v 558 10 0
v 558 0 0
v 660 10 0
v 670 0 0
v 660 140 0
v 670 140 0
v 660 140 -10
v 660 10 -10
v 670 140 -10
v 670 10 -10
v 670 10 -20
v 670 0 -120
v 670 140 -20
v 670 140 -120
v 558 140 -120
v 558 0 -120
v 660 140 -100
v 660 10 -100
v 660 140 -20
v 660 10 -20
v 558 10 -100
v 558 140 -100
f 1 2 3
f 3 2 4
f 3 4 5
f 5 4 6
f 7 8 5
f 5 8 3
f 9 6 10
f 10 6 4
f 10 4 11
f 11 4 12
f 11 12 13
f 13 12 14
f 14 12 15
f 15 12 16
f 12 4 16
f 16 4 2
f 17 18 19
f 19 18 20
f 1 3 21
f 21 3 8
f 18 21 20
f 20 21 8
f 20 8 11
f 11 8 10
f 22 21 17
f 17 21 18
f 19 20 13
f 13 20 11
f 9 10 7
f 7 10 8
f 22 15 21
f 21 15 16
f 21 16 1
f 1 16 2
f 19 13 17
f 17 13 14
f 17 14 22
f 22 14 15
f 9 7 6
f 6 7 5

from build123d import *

# Parameters (mm, degrees)
SKETCH1_W                      = 670
SKETCH1_H                      = 120
BOSS_EXTRUDE1_DEPTH            = 530
SKETCH2_W                      = 100
SKETCH2_H                      = 200
SKETCH2_W_2                    = 650
SKETCH2_H_2                    = 250
CUT_EXTRUDE1_DEPTH             = 100
SKETCH3_R                      = 50
CUT_EXTRUDE2_DEPTH             = 260
F_12_0_12_DIAMETER_HOLE2_D     = 12
F_12_0_12_DIAMETER_HOLE2_DEPTH = 30
F_12_0_12_DIAMETER_HOLE2_TIP   = 3.605163714
SKETCH8_W                      = 650
SKETCH8_H                      = 50
BOSS_EXTRUDE2_DEPTH            = 5
SKETCH9_W                      = 10
SKETCH9_H                      = 250
CUT_EXTRUDE3_DEPTH             = 717
CUT_EXTRUDE4_DEPTH             = 5
SKETCH11_W                     = 10
SKETCH11_H                     = 100
BOSS_EXTRUDE3_DEPTH            = 78
BOSS_EXTRUDE3_2_DEPTH          = 78
BOSS_EXTRUDE3_3_DEPTH          = 78
SKETCH12_W                     = 20
SKETCH12_H                     = 30
CUT_EXTRUDE5_DEPTH             = 80
SKETCH15_W                     = 30
SKETCH15_H                     = 23.536156656
SKETCH15_H_2                   = 28.986603691
CUT_EXTRUDE7_DEPTH             = 35
SHELL1_T                       = -3
SKETCH16_W                     = 14
SKETCH16_H                     = 14
CUT_EXTRUDE8_DEPTH             = 35
SKETCH17_W                     = 5.729882812
SKETCH17_H                     = 17.428393554
SKETCH17_W_2                   = 13.369726562
SKETCH17_H_2                   = 3.342431641
BOSS_EXTRUDE4_DEPTH            = 5
CUT_EXTRUDE10_DEPTH            = 863.670273187
CUT_EXTRUDE10_DEPTH_BACK       = 863.670273187
SKETCH18_W                     = 670
SKETCH18_H                     = 250
CUT_EXTRUDE12_DEPTH            = 737.002717386
CUT_EXTRUDE12_DEPTH_BACK       = 737.002717386
SKETCH19_W                     = 558
SKETCH19_H                     = 280
CUT_EXTRUDE13_DEPTH            = 322.253793752
CUT_EXTRUDE13_DEPTH_BACK       = 322.253793752
SKETCH20_W                     = 120
SKETCH20_H                     = 140


with BuildPart() as part:
    # Sketch1 → Boss-Extrude1 (new body)
    with BuildSketch(Plane(origin=(0, 0, 0), x_dir=(1, 0, 0), z_dir=(0, 1, 0))):
        with Locations((335, 60)):
            Rectangle(SKETCH1_W, SKETCH1_H)
    extrude(amount=BOSS_EXTRUDE1_DEPTH)

    # Sketch2 → Cut-Extrude1 (cut)
    with BuildSketch(Plane.XY):
        with Locations((60, 380)):
            Rectangle(SKETCH2_W, SKETCH2_H)
        with Locations((170, 380)):
            Rectangle(SKETCH2_W, SKETCH2_H)
        with Locations((280, 380)):
            Rectangle(SKETCH2_W, SKETCH2_H)
        with Locations((390, 380)):
            Rectangle(SKETCH2_W, SKETCH2_H)
        with Locations((500, 380)):
            Rectangle(SKETCH2_W, SKETCH2_H)
        with Locations((610, 380)):
            Rectangle(SKETCH2_W, SKETCH2_H)
        with Locations((335, 135)):
            Rectangle(SKETCH2_W_2, SKETCH2_H_2)
    extrude(amount=-CUT_EXTRUDE1_DEPTH, mode=Mode.SUBTRACT)

    # Sketch3 → Cut-Extrude2 (cut)
    with BuildSketch(Plane(origin=(0, 530, 0), x_dir=(1, 0, 0), z_dir=(0, 1, 0))):
        with Locations(Location((60, 60, 0), (0, 0, 270))):
            Circle(SKETCH3_R)
        with Locations(Location((170, 60, 0), (0, 0, 270))):
            Circle(SKETCH3_R)
        with Locations(Location((280, 60, 0), (0, 0, 270))):
            Circle(SKETCH3_R)
        with Locations(Location((390, 60, 0), (0, 0, 270))):
            Circle(SKETCH3_R)
        with Locations(Location((500, 60, 0), (0, 0, 270))):
            Circle(SKETCH3_R)
        with Locations(Location((610, 60, 0), (0, 0, 270))):
            Circle(SKETCH3_R)
    extrude(amount=-CUT_EXTRUDE2_DEPTH, mode=Mode.SUBTRACT)

    # Ø12.0 (12) Diameter Hole2
    with Locations(Plane(origin=(59.704642413, 270, -102.411697903), x_dir=(0, 0, 1), z_dir=(0, 1, 0))):
        with Locations((0, 0), (-0.195888006, 111.8520513), (0.014838595, 221.167624818), (-0.341843303, 331.364008353), (0.657723149, 441.008646429), (1.288998006, 549.811854685)):
            Hole(F_12_0_12_DIAMETER_HOLE2_D / 2, depth=F_12_0_12_DIAMETER_HOLE2_DEPTH)
            with Locations((0, 0, -(F_12_0_12_DIAMETER_HOLE2_DEPTH + F_12_0_12_DIAMETER_HOLE2_TIP / 2))):  # 118° drill point
                Cone(0, F_12_0_12_DIAMETER_HOLE2_D / 2, F_12_0_12_DIAMETER_HOLE2_TIP, mode=Mode.SUBTRACT)

    # Sketch8 → Boss-Extrude2 (add)
    with BuildSketch(Plane.XY):
        with Locations((335, 305)):
            Rectangle(SKETCH8_W, SKETCH8_H)
    extrude(amount=-BOSS_EXTRUDE2_DEPTH)

    # Sketch9 → Cut-Extrude3 (cut)
    with BuildSketch(Plane(origin=(670, 0, 0), x_dir=(0, 0, -1), z_dir=(1, 0, 0))):
        with Locations((15, 135)):
            Rectangle(SKETCH9_W, SKETCH9_H)
    extrude(amount=-CUT_EXTRUDE3_DEPTH, mode=Mode.SUBTRACT)

    # Sketch10 → Cut-Extrude4 (cut)
    with BuildSketch(Plane(origin=(0, 10, 0), x_dir=(1, 0, 0), z_dir=(0, 1, 0))):
        Polygon((365, 61.943560596), (350, 87.924322709), (320, 87.924322709), (305, 61.943560596), (320, 35.962798482), (350, 35.962798482), align=None)
    extrude(amount=-CUT_EXTRUDE4_DEPTH, mode=Mode.SUBTRACT)

    # Sketch12 → Cut-Extrude5 (cut)
    with BuildSketch(Plane.XY.offset(-100)):
        with Locations((85.198613037, 245)):
            Rectangle(SKETCH12_W, SKETCH12_H)
        with Locations((195.198613037, 245)):
            Rectangle(SKETCH12_W, SKETCH12_H)
        with Locations((305.198613037, 245)):
            Rectangle(SKETCH12_W, SKETCH12_H)
        with Locations((415.198613037, 245)):
            Rectangle(SKETCH12_W, SKETCH12_H)
        with Locations((525.198613037, 245)):
            Rectangle(SKETCH12_W, SKETCH12_H)
        with Locations((635.198613037, 245)):
            Rectangle(SKETCH12_W, SKETCH12_H)
    extrude(amount=-CUT_EXTRUDE5_DEPTH, mode=Mode.SUBTRACT)

    # Sketch17 → Boss-Extrude4 (add)
    # profile 1 of 9: a face of its own
    with BuildSketch(Plane.XY):
        with BuildLine():
            Line((527.508830928, 289.835452458), (527.508830928, 307.263846012))
            Line((527.508830928, 307.263846012), (534.861434459, 307.263846012))
            add(Edge.make_bspline(
                [(534.861434459, 307.263846012), (535.181337774, 307.258256848), (535.803061116, 307.24739446), (536.703508491, 307.139069344), (537.544992916, 306.975202489), (538.325061607, 306.737496792), (539.040841948, 306.426020155), (539.698044515, 306.051894954), (540.290333057, 305.605079277), (540.822348212, 305.090232636), (541.284521701, 304.502523111), (541.692171296, 303.852565801), (542.030284458, 303.129762281), (542.309377095, 302.341316546), (542.5243908, 301.484161689), (542.679660381, 300.560045938), (542.773357357, 299.567500804), (542.783368073, 298.883107022), (542.788518428, 298.530997273)],
                knots=[0, 0, 0, 0, 1.135059408, 2.20595691, 3.214417064, 4.174978569, 5.094187092, 5.980001006, 6.853065862, 7.720814779, 8.600404634, 9.50058483, 10.438414914, 11.426825708, 12.465239141, 13.571113463, 14.750376389, 16, 16, 16, 16], degree=3))
            add(Edge.make_bspline(
                [(542.788518428, 298.530997273), (542.781740751, 298.180151665), (542.768592871, 297.499553336), (542.676885992, 296.511518461), (542.516733301, 295.591080531), (542.296748778, 294.736450427), (542.003051046, 293.953120444), (541.654236167, 293.233205539), (541.233025793, 292.585291498), (540.753136904, 292.000029304), (540.204772188, 291.484681411), (539.587651059, 291.044279297), (538.910779309, 290.668464036), (538.169670382, 290.361903209), (537.364073889, 290.124869172), (536.495133477, 289.954199984), (535.562644449, 289.853487388), (534.920131033, 289.841584621), (534.58911581, 289.835452458)],
                knots=[0, 0, 0, 0, 1.228418252, 2.382983832, 3.470276728, 4.496757894, 5.468023682, 6.394867725, 7.292157164, 8.167372942, 9.039072913, 9.918728341, 10.815246345, 11.744296628, 12.720973084, 13.750736166, 14.841206188, 16, 16, 16, 16], degree=3))
            Line((534.58911581, 289.835452458), (527.508830928, 289.835452458))
        make_face()
        with BuildLine():
            Line((533.238713741, 291.745413395), (534.048208904, 291.745413395))
            add(Edge.make_bspline(
                [(534.048208904, 291.745413395), (534.172894012, 291.749291978), (534.413033311, 291.756761998), (534.758676231, 291.825976613), (535.075745017, 291.938271137), (535.365749176, 292.094802589), (535.623404602, 292.300450923), (535.848862806, 292.551404902), (536.04776914, 292.844737637), (536.217685755, 293.190205032), (536.364284647, 293.596533622), (536.481764702, 294.076367921), (536.592118304, 294.630928744), (536.673672739, 295.265507643), (536.740044562, 295.978448886), (536.788346679, 296.768428292), (536.812018936, 297.636801208), (536.817188964, 298.241258393), (536.819890499, 298.55711002)],
                knots=[0, 0, 0, 0, 0.728710832, 1.403472396, 2.052289494, 2.690292559, 3.321919393, 3.970736491, 4.656696891, 5.388631723, 6.217040872, 7.17856157, 8.275589967, 9.523440737, 10.918935818, 12.463926104, 14.152268318, 16, 16, 16, 16], degree=3))
            add(Edge.make_bspline(
                [(536.819890499, 298.55711002), (536.8171426, 298.871715251), (536.811863063, 299.476166083), (536.7886758, 300.343334385), (536.739579947, 301.133216935), (536.674703848, 301.843934916), (536.589660404, 302.476324031), (536.488366458, 303.031681737), (536.362441588, 303.507627045), (536.222158727, 303.914921549), (536.050140993, 304.256514038), (535.858357073, 304.554097881), (535.62547107, 304.79746827), (535.36991257, 305.004888479), (535.079348843, 305.160875844), (534.761320266, 305.273944358), (534.414185903, 305.34216807), (534.172870641, 305.349893944), (534.048208904, 305.353885075)],
                knots=[0, 0, 0, 0, 1.842836665, 3.540640921, 5.080358154, 6.47765669, 7.719902824, 8.816971715, 9.781579111, 10.601733135, 11.334613876, 12.017393917, 12.666641099, 13.29908421, 13.937911793, 14.587567384, 15.270347425, 16, 16, 16, 16], degree=3))
            Line((534.048208904, 305.353885075), (533.238713741, 305.353885075))
            Line((533.238713741, 305.353885075), (533.238713741, 291.745413395))
        make_face(mode=Mode.SUBTRACT)
    # profile 2 of 9: a face of its own
    with BuildSketch(Plane.XY):
        with Locations((547.563420772, 298.549649235)):
            Rectangle(SKETCH17_W, SKETCH17_H)
    # profile 3 of 9: a face of its own
    with BuildSketch(Plane.XY):
        Polygon((564.514324092, 307.263846012), (564.514324092, 305.115139958), (558.545696163, 305.115139958), (558.545696163, 299.862747379), (563.559343624, 299.862747379), (563.559343624, 297.714041325), (558.545696163, 297.714041325), (558.545696163, 289.835452458), (552.81581335, 289.835452458), (552.81581335, 307.263846012), align=None)
    # profile 4 of 9: a face of its own
    with BuildSketch(Plane.XY):
        Polygon((577.645305538, 307.263846012), (577.645305538, 305.115139958), (571.676677608, 305.115139958), (571.676677608, 299.862747379), (576.690325069, 299.862747379), (576.690325069, 297.714041325), (571.676677608, 297.714041325), (571.676677608, 289.835452458), (565.946794795, 289.835452458), (565.946794795, 307.263846012), align=None)
    # profile 5 of 9: a face of its own
    with BuildSketch(Plane.XY):
        with Locations((584.330168819, 287.448001286)):
            Rectangle(SKETCH17_W_2, SKETCH17_H_2)
    # profile 6 of 9: a face of its own
    with BuildSketch(Plane.XY):
        with BuildLine():
            Line((605.578484249, 307.263846012), (605.578484249, 295.602639195))
            add(Edge.make_bspline(
                [(605.578484249, 295.602639195), (605.574209777, 295.35989389), (605.565919345, 294.889083964), (605.480877158, 294.20653885), (605.349958188, 293.569747554), (605.15926554, 292.978838165), (604.911867049, 292.436847071), (604.616163877, 291.936663973), (604.260702644, 291.487723021), (603.847299908, 291.08966617), (603.386881991, 290.731670113), (602.867295001, 290.425440037), (602.293741958, 290.168488385), (601.66690529, 289.960990771), (600.988052682, 289.797299786), (600.254912883, 289.679078851), (599.467035781, 289.60781007), (598.923618241, 289.60048219), (598.643684673, 289.59670734)],
                knots=[0, 0, 0, 0, 1.108173197, 2.149326602, 3.136215123, 4.073726706, 4.978516626, 5.852185058, 6.72141202, 7.584905625, 8.467554395, 9.379216169, 10.332422268, 11.332766067, 12.390653242, 13.518530507, 14.721707419, 16, 16, 16, 16], degree=3))
            add(Edge.make_bspline(
                [(598.643684673, 289.59670734), (598.373688491, 289.600411437), (597.851346557, 289.607577482), (597.093280473, 289.679448684), (596.387523889, 289.797736542), (595.733050135, 289.960122315), (595.130189942, 290.169220301), (594.579048171, 290.42623041), (594.078350789, 290.732835498), (593.633858028, 291.090104794), (593.234289459, 291.486851767), (592.899913678, 291.940746827), (592.609043638, 292.435866034), (592.375223767, 292.980322997), (592.191754821, 293.570441519), (592.063541006, 294.20666921), (591.983676196, 294.889343196), (591.974661767, 295.359932437), (591.970012569, 295.602639195)],
                knots=[0, 0, 0, 0, 1.258901956, 2.435505865, 3.547148904, 4.59359074, 5.576649289, 6.5183682, 7.424469602, 8.307507093, 9.172751023, 10.042627298, 10.928839176, 11.845659241, 12.799442865, 13.80597989, 14.868432463, 16, 16, 16, 16], degree=3))
            Line((591.970012569, 295.602639195), (591.970012569, 307.263846012))
            Line((591.970012569, 307.263846012), (597.699895381, 307.263846012))
            Line((597.699895381, 307.263846012), (597.699895381, 295.457153889))
            add(Edge.make_bspline(
                [(597.699895381, 295.457153889), (597.700816195, 295.287996189), (597.702584578, 294.963135903), (597.729908723, 294.499051493), (597.768241004, 294.079064133), (597.828226169, 293.705517832), (597.90066041, 293.377063412), (597.989882091, 293.09281535), (598.094998068, 292.852496478), (598.225239063, 292.654232043), (598.380826623, 292.495135011), (598.55368342, 292.353231761), (598.757556996, 292.238543846), (598.987648905, 292.146224908), (599.243380948, 292.070549638), (599.526120553, 292.020376099), (599.83553351, 291.990763905), (600.049971942, 291.986424568), (600.161954402, 291.984158512)],
                knots=[0, 0, 0, 0, 1.622370975, 3.115695595, 4.458049099, 5.666011203, 6.742434742, 7.681714947, 8.519814998, 9.250928664, 9.942747364, 10.646898194, 11.389596108, 12.175933929, 13.021386247, 13.943159715, 14.925891993, 16, 16, 16, 16], degree=3))
            add(Edge.make_bspline(
                [(600.161954402, 291.984158512), (600.283927219, 291.987190593), (600.521124756, 291.993087005), (600.86597014, 292.03390861), (601.187714881, 292.103380086), (601.484890424, 292.205377303), (601.758665297, 292.332852529), (602.012761516, 292.484567923), (602.236391413, 292.674631152), (602.439076761, 292.888441291), (602.620738276, 293.128529789), (602.771757722, 293.399928575), (602.905501548, 293.697121508), (603.005823683, 294.025060118), (603.089837826, 294.379999499), (603.146989706, 294.763086929), (603.186210275, 295.174074524), (603.189394751, 295.457053988), (603.191033077, 295.602639195)],
                knots=[0, 0, 0, 0, 1.083870311, 2.107775948, 3.08105344, 4.003637981, 4.893545291, 5.761570557, 6.624657808, 7.49233129, 8.376387281, 9.291996285, 10.246843261, 11.267344133, 12.334180325, 13.486053461, 14.706643157, 16, 16, 16, 16], degree=3))
            Line((603.191033077, 295.602639195), (603.191033077, 307.263846012))
            Line((603.191033077, 307.263846012), (605.578484249, 307.263846012))
        make_face()
    # profile 7 of 9: a face of its own
    with BuildSketch(Plane.XY):
        with BuildLine():
            Line((619.731593227, 302.015183827), (616.739818477, 301.526502415))
            add(Edge.make_bspline(
                [(616.739818477, 301.526502415), (616.748849224, 301.670726223), (616.765660669, 301.939210177), (616.78429066, 302.312269209), (616.796668381, 302.625642376), (616.798628236, 302.814722915), (616.799504756, 302.899286839)],
                knots=[0, 0, 0, 0, 1.261802504, 2.348944521, 3.261585937, 4, 4, 4, 4], degree=3))
            add(Edge.make_bspline(
                [(616.799504756, 302.899286839), (616.798306068, 303.007660677), (616.795968139, 303.219033721), (616.750451916, 303.523894877), (616.694806916, 303.811547356), (616.604352699, 304.076787391), (616.488181329, 304.320314265), (616.348943917, 304.543955606), (616.184187178, 304.745078709), (615.995833421, 304.928129987), (615.778009957, 305.083200131), (615.536269472, 305.218702836), (615.269765326, 305.333844758), (614.978065514, 305.431346685), (614.660683072, 305.504624438), (614.319025281, 305.556776695), (613.952471696, 305.585673441), (613.699597795, 305.590260771), (613.568984889, 305.592630192)],
                knots=[0, 0, 0, 0, 1.079280541, 2.105035848, 3.067950317, 3.99715044, 4.889989748, 5.753421302, 6.617030865, 7.476358039, 8.364190572, 9.274590025, 10.235106994, 11.254473582, 12.337095886, 13.478601727, 14.697662529, 16, 16, 16, 16], degree=3))
            add(Edge.make_bspline(
                [(613.568984889, 305.592630192), (613.391954632, 305.58912286), (613.059112606, 305.582528579), (612.595688488, 305.495339748), (612.198743126, 305.361419257), (611.87165349, 305.163811893), (611.613188167, 304.909795747), (611.433841092, 304.593316589), (611.323009072, 304.224665915), (611.313400221, 303.959558324), (611.308367061, 303.820693775)],
                knots=[0, 0, 0, 0, 1.294917039, 2.43462794, 3.440028966, 4.347597256, 5.210608309, 6.06356377, 6.985685997, 8, 8, 8, 8], degree=3))
            add(Edge.make_bspline(
                [(611.308367061, 303.820693775), (611.317562032, 303.705133219), (611.336106628, 303.472068433), (611.47315858, 303.132808312), (611.695999602, 302.811560885), (612.009295906, 302.510664216), (612.404107796, 302.221967273), (612.884407504, 301.948533431), (613.450813789, 301.688189695), (613.862519081, 301.536023727), (614.080048656, 301.455624958)],
                knots=[0, 0, 0, 0, 0.716839541, 1.445735977, 2.240793036, 3.131329288, 4.131129903, 5.273471266, 6.559404876, 8, 8, 8, 8], degree=3))
            add(Edge.make_bspline(
                [(614.080048656, 301.455624958), (614.335934702, 301.364918412), (614.834564244, 301.188164095), (615.547657928, 300.88707802), (616.213068388, 300.5749594), (616.829579094, 300.246613346), (617.397833174, 299.90520698), (617.914851624, 299.544556457), (618.386199073, 299.173962102), (618.807001026, 298.783874588), (619.177995113, 298.378100064), (619.4958685, 297.952745357), (619.771807525, 297.51723103), (619.991113975, 297.061458502), (620.169645242, 296.594624218), (620.292698657, 296.11024444), (620.364288243, 295.609761088), (620.37516617, 295.270864226), (620.380681514, 295.099036213)],
                knots=[0, 0, 0, 0, 1.359488612, 2.649152603, 3.874964776, 5.039588756, 6.146130126, 7.193090393, 8.194917302, 9.146793662, 10.063845301, 10.944476293, 11.803344532, 12.641736646, 13.473440096, 14.302714936, 15.139439897, 16, 16, 16, 16], degree=3))
            add(Edge.make_bspline(
                [(620.380681514, 295.099036213), (620.374476075, 294.902306495), (620.362285176, 294.515820995), (620.280160209, 293.948630617), (620.138011896, 293.409496554), (619.938489338, 292.895972278), (619.681049879, 292.411946655), (619.366518754, 291.954381076), (618.996510229, 291.525099427), (618.5710008, 291.128381035), (618.102222518, 290.765302239), (617.587803957, 290.450854345), (617.034458515, 290.187092261), (616.444107988, 289.968993032), (615.81453624, 289.801373099), (615.145337453, 289.685291013), (614.438790193, 289.606619894), (613.954683001, 289.600062276), (613.70700941, 289.59670734)],
                knots=[0, 0, 0, 0, 0.972121714, 1.909782367, 2.824924061, 3.721832975, 4.62620438, 5.527836938, 6.46026819, 7.421000932, 8.398101015, 9.385579713, 10.394244048, 11.422703992, 12.491421888, 13.608778581, 14.776629625, 16, 16, 16, 16], degree=3))
            add(Edge.make_bspline(
                [(613.70700941, 289.59670734), (613.445745367, 289.599650312), (612.939893069, 289.605348413), (612.207608113, 289.66709241), (611.525297432, 289.760984454), (610.893395078, 289.899706116), (610.309273131, 290.072394336), (609.776099392, 290.288320955), (609.295310255, 290.547303481), (608.863217672, 290.843007892), (608.478306623, 291.175775461), (608.148120946, 291.551766865), (607.86942369, 291.967163224), (607.639947144, 292.421521488), (607.466477665, 292.917583541), (607.339164663, 293.449829748), (607.264537999, 294.021332449), (607.254747521, 294.414908557), (607.249700069, 294.617815586)],
                knots=[0, 0, 0, 0, 1.342201143, 2.598733168, 3.773451092, 4.878874364, 5.91991243, 6.900006476, 7.829142054, 8.72062616, 9.585588575, 10.436728592, 11.283829734, 12.149664931, 13.044964919, 13.977937424, 14.957531465, 16, 16, 16, 16], degree=3))
            add(Edge.make_bspline(
                [(607.249700069, 294.617815586), (607.250803815, 294.692425759), (607.253213998, 294.855347393), (607.260452266, 295.122772538), (607.275636683, 295.433682216), (607.29037174, 295.656130545), (607.298195171, 295.774237248)],
                knots=[0, 0, 0, 0, 0.773500207, 1.689044709, 2.77302154, 4, 4, 4, 4], degree=3))
            Line((607.298195171, 295.774237248), (610.36457777, 296.337526509))
            add(Edge.make_bspline(
                [(610.36457777, 296.337526509), (610.326952988, 296.136337493), (610.255606535, 295.754830366), (610.178678473, 295.21219969), (610.124206629, 294.733311493), (610.11767002, 294.435147371), (610.114641475, 294.297001835)],
                knots=[0, 0, 0, 0, 1.192988372, 2.262218769, 3.194850416, 4, 4, 4, 4], degree=3))
            add(Edge.make_bspline(
                [(610.114641475, 294.297001835), (610.116191817, 294.183708768), (610.119182568, 293.965156219), (610.159053378, 293.648552813), (610.215988606, 293.352999663), (610.302906772, 293.079707227), (610.411206928, 292.826307836), (610.544682453, 292.59538211), (610.704385489, 292.386485019), (610.887496571, 292.200099922), (611.094689168, 292.033628705), (611.327456494, 291.892756696), (611.58347653, 291.771733922), (611.864681562, 291.677479524), (612.167961721, 291.596080628), (612.497219749, 291.548235723), (612.849461228, 291.512043782), (613.092629543, 291.508500084), (613.218327999, 291.506668278)],
                knots=[0, 0, 0, 0, 1.135776692, 2.191015738, 3.19649269, 4.151244236, 5.061952528, 5.956281389, 6.819534407, 7.692823504, 8.571441916, 9.478554956, 10.416037156, 11.406231466, 12.450054172, 13.561596327, 14.739541482, 16, 16, 16, 16], degree=3))
            add(Edge.make_bspline(
                [(613.218327999, 291.506668278), (613.423996012, 291.510791273), (613.810619321, 291.518541853), (614.349272542, 291.616708407), (614.810575885, 291.768742445), (615.189785268, 291.991387532), (615.490778961, 292.278756613), (615.698005174, 292.637320004), (615.824813318, 293.05638326), (615.837728413, 293.355975238), (615.844524288, 293.513619419)],
                knots=[0, 0, 0, 0, 1.308765556, 2.460272085, 3.475015317, 4.388076298, 5.239673503, 6.095681635, 6.997954785, 8, 8, 8, 8], degree=3))
            add(Edge.make_bspline(
                [(615.844524288, 293.513619419), (615.833808824, 293.638242951), (615.811807312, 293.894126055), (615.644884004, 294.264515838), (615.382382362, 294.620631473), (615.016807277, 294.962984909), (614.551376589, 295.293471235), (613.986957743, 295.616730224), (613.322148235, 295.933112033), (612.83677959, 296.119639164), (612.580430889, 296.21815395)],
                knots=[0, 0, 0, 0, 0.667930748, 1.371427933, 2.146459016, 3.034714139, 4.04893387, 5.207327294, 6.525042705, 8, 8, 8, 8], degree=3))
            add(Edge.make_bspline(
                [(612.580430889, 296.21815395), (612.374354345, 296.29679374), (611.970646869, 296.450850434), (611.394079385, 296.713586304), (610.853066711, 296.987016804), (610.357486361, 297.288235735), (609.896382561, 297.599610528), (609.477036946, 297.932256792), (609.09841673, 298.284556341), (608.758710772, 298.653375077), (608.457302107, 299.038989264), (608.199448649, 299.444659231), (607.977533299, 299.866789834), (607.798609588, 300.308107488), (607.65975715, 300.767821241), (607.559616231, 301.244439392), (607.497905054, 301.739995674), (607.491630423, 302.075933546), (607.488445186, 302.246468159)],
                knots=[0, 0, 0, 0, 1.249558333, 2.447906163, 3.58867143, 4.682264114, 5.731748367, 6.739728761, 7.711906036, 8.659384707, 9.578321416, 10.481344598, 11.379544271, 12.277135726, 13.175418307, 14.097160112, 15.034047388, 16, 16, 16, 16], degree=3))
            add(Edge.make_bspline(
                [(607.488445186, 302.246468159), (607.49282555, 302.439538736), (607.501402184, 302.817565692), (607.587451154, 303.36980586), (607.719291893, 303.894921371), (607.910558542, 304.389343064), (608.156192894, 304.852853762), (608.453187669, 305.288766511), (608.804241719, 305.697593471), (609.213503754, 306.066686531), (609.657214714, 306.407618241), (610.14376173, 306.697651931), (610.658716537, 306.950861947), (611.210636666, 307.148827868), (611.791820619, 307.313252612), (612.408080529, 307.421140415), (613.056315391, 307.490701612), (613.499160755, 307.498567824), (613.725661373, 307.502591129)],
                knots=[0, 0, 0, 0, 1.01033566, 1.978209831, 2.919499157, 3.840961976, 4.746855014, 5.660740114, 6.597989116, 7.56120833, 8.541877795, 9.523498025, 10.522416858, 11.542172371, 12.589598349, 13.681636521, 14.814234488, 16, 16, 16, 16], degree=3))
            add(Edge.make_bspline(
                [(613.725661373, 307.502591129), (613.968269855, 307.498219033), (614.438190994, 307.489750488), (615.120391152, 307.426787419), (615.755073228, 307.319142339), (616.345153155, 307.171557286), (616.887304575, 306.977590666), (617.384933999, 306.742393454), (617.834452216, 306.46201507), (618.236961315, 306.139451502), (618.593086714, 305.773322851), (618.897467704, 305.361641069), (619.158701245, 304.909408454), (619.366684143, 304.412232174), (619.529870326, 303.873247147), (619.649133834, 303.29158184), (619.720420497, 302.667301443), (619.72779778, 302.236712324), (619.731593227, 302.015183827)],
                knots=[0, 0, 0, 0, 1.248314423, 2.417925914, 3.521398822, 4.558068205, 5.543720209, 6.479599284, 7.385061127, 8.263440163, 9.127722873, 10.00561236, 10.891325273, 11.808802823, 12.772251995, 13.784947978, 14.860405143, 16, 16, 16, 16], degree=3))
        make_face()
    # profile 8 of 9: a face of its own
    with BuildSketch(Plane.XY):
        Polygon((633.989153194, 307.263846012), (633.989153194, 305.115139958), (628.020525264, 305.115139958), (628.020525264, 300.340237614), (633.034172725, 300.340237614), (633.034172725, 298.191531559), (628.020525264, 298.191531559), (628.020525264, 291.984158512), (634.944133663, 291.984158512), (634.944133663, 289.835452458), (622.290642452, 289.835452458), (622.290642452, 307.263846012), align=None)
    # profile 9 of 9: a face of its own
    with BuildSketch(Plane.XY):
        with BuildLine():
            Line((636.376604366, 289.835452458), (636.376604366, 307.263846012))
            Line((636.376604366, 307.263846012), (643.990335369, 307.263846012))
            add(Edge.make_bspline(
                [(643.990335369, 307.263846012), (644.237946498, 307.261150834), (644.721600887, 307.25588639), (645.426490561, 307.189203683), (646.094808274, 307.090496236), (646.724915796, 306.949857504), (647.317873659, 306.767252686), (647.871119087, 306.542146), (648.390701058, 306.282329135), (648.864494846, 305.976472528), (649.295093616, 305.642889252), (649.669668547, 305.279483604), (649.990389523, 304.894749072), (650.250664962, 304.483256345), (650.454275633, 304.048690948), (650.59581384, 303.587791605), (650.684089268, 303.104102537), (650.695510601, 302.772834174), (650.701311397, 302.604585835)],
                knots=[0, 0, 0, 0, 1.303269877, 2.545653735, 3.724355284, 4.8584284, 5.941462088, 6.987020715, 8.000098032, 8.995332524, 9.951400474, 10.863507538, 11.737823931, 12.582415999, 13.420128714, 14.25671499, 15.114600608, 16, 16, 16, 16], degree=3))
            add(Edge.make_bspline(
                [(650.701311397, 302.604585835), (650.698282873, 302.472674957), (650.692382063, 302.215658276), (650.651041486, 301.838684287), (650.580643818, 301.480313933), (650.481036683, 301.139915259), (650.347814833, 300.820175594), (650.191279492, 300.517863507), (650.009772227, 300.230553342), (649.788675198, 299.970497982), (649.548268341, 299.722842359), (649.274558803, 299.497116911), (648.974487035, 299.288655528), (648.642526299, 299.104010513), (648.287619671, 298.928055749), (647.899038177, 298.784921972), (647.486819978, 298.644749395), (647.19793098, 298.577036306), (647.049257183, 298.54218845)],
                knots=[0, 0, 0, 0, 1.057156483, 2.059775939, 3.035078039, 3.981068617, 4.897189472, 5.80650904, 6.70770952, 7.613691521, 8.536886357, 9.470937334, 10.45233069, 11.461024139, 12.51295332, 13.623444893, 14.776929983, 16, 16, 16, 16], degree=3))
            add(Edge.make_bspline(
                [(647.049257183, 298.54218845), (647.19164695, 298.499279419), (647.467865022, 298.416041346), (647.856360945, 298.265600017), (648.211652989, 298.111536308), (648.524185739, 297.936781388), (648.807636894, 297.762122504), (649.047122259, 297.564301324), (649.255235567, 297.361673563), (649.425188343, 297.135464734), (649.570253643, 296.882344437), (649.694827156, 296.586596707), (649.815179167, 296.247423665), (649.917667348, 295.859098311), (650.004750555, 295.423699276), (650.088222437, 294.944027189), (650.153853601, 294.416024546), (650.187587341, 294.048412906), (650.2051692, 293.856815525)],
                knots=[0, 0, 0, 0, 1.149282524, 2.229462177, 3.219229774, 4.139917433, 4.995948464, 5.788695735, 6.536448429, 7.236319808, 7.968460079, 8.78645307, 9.713791991, 10.749194692, 11.887975363, 13.146018663, 14.512518948, 16, 16, 16, 16], degree=3))
            add(Edge.make_bspline(
                [(650.2051692, 293.856815525), (650.225980287, 293.627849833), (650.265975604, 293.187817268), (650.348933081, 292.554613589), (650.44386163, 291.974357025), (650.555874504, 291.44528724), (650.681301216, 290.967898855), (650.821280597, 290.540469593), (650.979920039, 290.165788217), (651.10484481, 289.941461656), (651.163880062, 289.835452458)],
                knots=[0, 0, 0, 0, 1.324580516, 2.545615266, 3.678710841, 4.711533017, 5.660403917, 6.521349952, 7.301239649, 8, 8, 8, 8], degree=3))
            Line((651.163880062, 289.835452458), (645.213904094, 289.835452458))
            add(Edge.make_bspline(
                [(645.213904094, 289.835452458), (645.12229736, 290.069847279), (644.935171241, 290.548648246), (644.7595281, 291.319414791), (644.64846922, 292.142514735), (644.635117598, 292.70994511), (644.628232479, 293.002555653)],
                knots=[0, 0, 0, 0, 0.930410518, 1.900560147, 2.917368081, 4, 4, 4, 4], degree=3))
            Line((644.628232479, 293.002555653), (644.605850124, 294.002300831))
            Line((644.605850124, 294.002300831), (644.579737377, 295.266903874))
            add(Edge.make_bspline(
                [(644.579737377, 295.266903874), (644.573694669, 295.477395004), (644.562357007, 295.872330118), (644.469348432, 296.426164013), (644.30178735, 296.894645884), (644.073222546, 297.287223005), (643.766741442, 297.590613479), (643.39104803, 297.804152917), (642.950456912, 297.93396284), (642.634664848, 297.946292392), (642.468335247, 297.952786442)],
                knots=[0, 0, 0, 0, 1.295300309, 2.430314163, 3.439929415, 4.342995669, 5.203512789, 6.060756153, 6.978588463, 8, 8, 8, 8], degree=3))
            Line((642.468335247, 297.952786442), (642.106487178, 297.952786442))
            Line((642.106487178, 297.952786442), (642.106487178, 289.835452458))
            Line((642.106487178, 289.835452458), (636.376604366, 289.835452458))
        make_face()
        with BuildLine():
            Line((642.106487178, 299.862747379), (642.617550945, 299.862747379))
            add(Edge.make_bspline(
                [(642.617550945, 299.862747379), (642.722054451, 299.865172716), (642.925280724, 299.869889229), (643.220054897, 299.898289891), (643.494111408, 299.951809873), (643.749840966, 300.021017819), (643.984372137, 300.114851792), (644.200147241, 300.225818296), (644.391160406, 300.362685327), (644.565327067, 300.516342321), (644.718148635, 300.691986294), (644.850351299, 300.889034217), (644.961199162, 301.106225057), (645.056078491, 301.342818683), (645.125883912, 301.600830857), (645.173262731, 301.879472914), (645.203404658, 302.177423605), (645.207875435, 302.383174491), (645.210173702, 302.488943669)],
                knots=[0, 0, 0, 0, 1.184986479, 2.304423995, 3.352332712, 4.347714965, 5.303263624, 6.211353909, 7.091434645, 7.960150225, 8.839440182, 9.723126897, 10.64371617, 11.599264829, 12.608232147, 13.667459739, 14.800924404, 16, 16, 16, 16], degree=3))
            add(Edge.make_bspline(
                [(645.210173702, 302.488943669), (645.207875435, 302.594712847), (645.203404658, 302.800463732), (645.173262731, 303.098414423), (645.125883912, 303.37705648), (645.056078491, 303.635068654), (644.961199162, 303.87166228), (644.850351299, 304.08885312), (644.718148635, 304.285901043), (644.565327067, 304.461545017), (644.391160406, 304.61520201), (644.200147241, 304.752069041), (643.984372137, 304.863035546), (643.749840966, 304.956869518), (643.494111408, 305.026077464), (643.220054897, 305.079597446), (642.925280724, 305.107998108), (642.722054451, 305.112714621), (642.617550945, 305.115139958)],
                knots=[0, 0, 0, 0, 1.199075596, 2.332540261, 3.391767853, 4.400735171, 5.35628383, 6.276873103, 7.160559818, 8.039849775, 8.908565355, 9.788646091, 10.696736376, 11.652285035, 12.647667288, 13.695576005, 14.815013521, 16, 16, 16, 16], degree=3))
            Line((642.617550945, 305.115139958), (642.106487178, 305.115139958))
            Line((642.106487178, 305.115139958), (642.106487178, 299.862747379))
        make_face(mode=Mode.SUBTRACT)
    extrude(amount=BOSS_EXTRUDE4_DEPTH)

    # Sketch18 → Cut-Extrude10 (cut, two sides: drawn at the far end of the back side and taken through both)
    with BuildSketch(Plane.XY.offset(-CUT_EXTRUDE10_DEPTH_BACK)):
        with Locations((335, 405)):
            Rectangle(SKETCH18_W, SKETCH18_H)
    extrude(amount=CUT_EXTRUDE10_DEPTH + CUT_EXTRUDE10_DEPTH_BACK, mode=Mode.SUBTRACT)

    # Sketch19 → Cut-Extrude12 (cut, two sides: drawn at the far end of the back side and taken through both)
    with BuildSketch(Plane(origin=(0, 0, -120), x_dir=(-1, 0, 0), z_dir=(0, 0, -1)).offset(-CUT_EXTRUDE12_DEPTH_BACK)):
        with Locations((-279, 140)):
            Rectangle(SKETCH19_W, SKETCH19_H)
    extrude(amount=CUT_EXTRUDE12_DEPTH + CUT_EXTRUDE12_DEPTH_BACK, mode=Mode.SUBTRACT)

    # Sketch20 → Cut-Extrude13 (cut, two sides: drawn at the far end of the back side and taken through both)
    with BuildSketch(Plane.ZY.offset(-660).offset(-CUT_EXTRUDE13_DEPTH_BACK)):
        with Locations((-60, 210)):
            Rectangle(SKETCH20_W, SKETCH20_H)
    extrude(amount=CUT_EXTRUDE13_DEPTH + CUT_EXTRUDE13_DEPTH_BACK, mode=Mode.SUBTRACT)


with BuildPart() as body_2:
    # Sketch11 → Boss-Extrude3 (new body)
    with BuildSketch(Plane.XY.offset(-100)):
        with Locations((255, 60)):
            Rectangle(SKETCH11_W, SKETCH11_H)
    extrude(amount=BOSS_EXTRUDE3_DEPTH)


with BuildPart() as body_3:
    # Sketch11 → Boss-Extrude3 2 (new body)
    with BuildSketch(Plane.XY.offset(-100)):
        with Locations((415, 60)):
            Rectangle(SKETCH11_W, SKETCH11_H)
    extrude(amount=BOSS_EXTRUDE3_2_DEPTH)


with BuildPart() as body_4:
    # Sketch11 → Boss-Extrude3 3 (new body)
    with BuildSketch(Plane.XY.offset(-100)):
        Polygon((25, 198.45686471), (325, 145.558770497), (325, 122.01775856), (345, 122.01775856), (345, 145.558770497), (645, 198.45686471), align=None)
    extrude(amount=BOSS_EXTRUDE3_3_DEPTH)

    # Sketch15 → Cut-Extrude7 (cut)
    with BuildSketch(Plane(origin=(345, 0, 0), x_dir=(0, 0, -1), z_dir=(1, 0, 0))):
        with Locations((35, 133.231921672)):
            Rectangle(SKETCH15_W, SKETCH15_H)
        with Locations((85, 130.506698154)):
            Rectangle(SKETCH15_W, SKETCH15_H_2)
    extrude(amount=-CUT_EXTRUDE7_DEPTH, mode=Mode.SUBTRACT)

    # Shell1
    shell1_openings = [body_4.faces().sort_by_distance(p)[0] for p in [
        (335, 198.45686471, -61),
    ]]
    offset(amount=SHELL1_T, openings=shell1_openings, kind=Kind.INTERSECTION)

    # Sketch16 → Cut-Extrude8 (cut)
    with BuildSketch(Plane.XZ.offset(-122.01775856)):
        with Locations((335, -60)):
            Rectangle(SKETCH16_W, SKETCH16_H)
    extrude(amount=-CUT_EXTRUDE8_DEPTH, mode=Mode.SUBTRACT)


solid = part.part
